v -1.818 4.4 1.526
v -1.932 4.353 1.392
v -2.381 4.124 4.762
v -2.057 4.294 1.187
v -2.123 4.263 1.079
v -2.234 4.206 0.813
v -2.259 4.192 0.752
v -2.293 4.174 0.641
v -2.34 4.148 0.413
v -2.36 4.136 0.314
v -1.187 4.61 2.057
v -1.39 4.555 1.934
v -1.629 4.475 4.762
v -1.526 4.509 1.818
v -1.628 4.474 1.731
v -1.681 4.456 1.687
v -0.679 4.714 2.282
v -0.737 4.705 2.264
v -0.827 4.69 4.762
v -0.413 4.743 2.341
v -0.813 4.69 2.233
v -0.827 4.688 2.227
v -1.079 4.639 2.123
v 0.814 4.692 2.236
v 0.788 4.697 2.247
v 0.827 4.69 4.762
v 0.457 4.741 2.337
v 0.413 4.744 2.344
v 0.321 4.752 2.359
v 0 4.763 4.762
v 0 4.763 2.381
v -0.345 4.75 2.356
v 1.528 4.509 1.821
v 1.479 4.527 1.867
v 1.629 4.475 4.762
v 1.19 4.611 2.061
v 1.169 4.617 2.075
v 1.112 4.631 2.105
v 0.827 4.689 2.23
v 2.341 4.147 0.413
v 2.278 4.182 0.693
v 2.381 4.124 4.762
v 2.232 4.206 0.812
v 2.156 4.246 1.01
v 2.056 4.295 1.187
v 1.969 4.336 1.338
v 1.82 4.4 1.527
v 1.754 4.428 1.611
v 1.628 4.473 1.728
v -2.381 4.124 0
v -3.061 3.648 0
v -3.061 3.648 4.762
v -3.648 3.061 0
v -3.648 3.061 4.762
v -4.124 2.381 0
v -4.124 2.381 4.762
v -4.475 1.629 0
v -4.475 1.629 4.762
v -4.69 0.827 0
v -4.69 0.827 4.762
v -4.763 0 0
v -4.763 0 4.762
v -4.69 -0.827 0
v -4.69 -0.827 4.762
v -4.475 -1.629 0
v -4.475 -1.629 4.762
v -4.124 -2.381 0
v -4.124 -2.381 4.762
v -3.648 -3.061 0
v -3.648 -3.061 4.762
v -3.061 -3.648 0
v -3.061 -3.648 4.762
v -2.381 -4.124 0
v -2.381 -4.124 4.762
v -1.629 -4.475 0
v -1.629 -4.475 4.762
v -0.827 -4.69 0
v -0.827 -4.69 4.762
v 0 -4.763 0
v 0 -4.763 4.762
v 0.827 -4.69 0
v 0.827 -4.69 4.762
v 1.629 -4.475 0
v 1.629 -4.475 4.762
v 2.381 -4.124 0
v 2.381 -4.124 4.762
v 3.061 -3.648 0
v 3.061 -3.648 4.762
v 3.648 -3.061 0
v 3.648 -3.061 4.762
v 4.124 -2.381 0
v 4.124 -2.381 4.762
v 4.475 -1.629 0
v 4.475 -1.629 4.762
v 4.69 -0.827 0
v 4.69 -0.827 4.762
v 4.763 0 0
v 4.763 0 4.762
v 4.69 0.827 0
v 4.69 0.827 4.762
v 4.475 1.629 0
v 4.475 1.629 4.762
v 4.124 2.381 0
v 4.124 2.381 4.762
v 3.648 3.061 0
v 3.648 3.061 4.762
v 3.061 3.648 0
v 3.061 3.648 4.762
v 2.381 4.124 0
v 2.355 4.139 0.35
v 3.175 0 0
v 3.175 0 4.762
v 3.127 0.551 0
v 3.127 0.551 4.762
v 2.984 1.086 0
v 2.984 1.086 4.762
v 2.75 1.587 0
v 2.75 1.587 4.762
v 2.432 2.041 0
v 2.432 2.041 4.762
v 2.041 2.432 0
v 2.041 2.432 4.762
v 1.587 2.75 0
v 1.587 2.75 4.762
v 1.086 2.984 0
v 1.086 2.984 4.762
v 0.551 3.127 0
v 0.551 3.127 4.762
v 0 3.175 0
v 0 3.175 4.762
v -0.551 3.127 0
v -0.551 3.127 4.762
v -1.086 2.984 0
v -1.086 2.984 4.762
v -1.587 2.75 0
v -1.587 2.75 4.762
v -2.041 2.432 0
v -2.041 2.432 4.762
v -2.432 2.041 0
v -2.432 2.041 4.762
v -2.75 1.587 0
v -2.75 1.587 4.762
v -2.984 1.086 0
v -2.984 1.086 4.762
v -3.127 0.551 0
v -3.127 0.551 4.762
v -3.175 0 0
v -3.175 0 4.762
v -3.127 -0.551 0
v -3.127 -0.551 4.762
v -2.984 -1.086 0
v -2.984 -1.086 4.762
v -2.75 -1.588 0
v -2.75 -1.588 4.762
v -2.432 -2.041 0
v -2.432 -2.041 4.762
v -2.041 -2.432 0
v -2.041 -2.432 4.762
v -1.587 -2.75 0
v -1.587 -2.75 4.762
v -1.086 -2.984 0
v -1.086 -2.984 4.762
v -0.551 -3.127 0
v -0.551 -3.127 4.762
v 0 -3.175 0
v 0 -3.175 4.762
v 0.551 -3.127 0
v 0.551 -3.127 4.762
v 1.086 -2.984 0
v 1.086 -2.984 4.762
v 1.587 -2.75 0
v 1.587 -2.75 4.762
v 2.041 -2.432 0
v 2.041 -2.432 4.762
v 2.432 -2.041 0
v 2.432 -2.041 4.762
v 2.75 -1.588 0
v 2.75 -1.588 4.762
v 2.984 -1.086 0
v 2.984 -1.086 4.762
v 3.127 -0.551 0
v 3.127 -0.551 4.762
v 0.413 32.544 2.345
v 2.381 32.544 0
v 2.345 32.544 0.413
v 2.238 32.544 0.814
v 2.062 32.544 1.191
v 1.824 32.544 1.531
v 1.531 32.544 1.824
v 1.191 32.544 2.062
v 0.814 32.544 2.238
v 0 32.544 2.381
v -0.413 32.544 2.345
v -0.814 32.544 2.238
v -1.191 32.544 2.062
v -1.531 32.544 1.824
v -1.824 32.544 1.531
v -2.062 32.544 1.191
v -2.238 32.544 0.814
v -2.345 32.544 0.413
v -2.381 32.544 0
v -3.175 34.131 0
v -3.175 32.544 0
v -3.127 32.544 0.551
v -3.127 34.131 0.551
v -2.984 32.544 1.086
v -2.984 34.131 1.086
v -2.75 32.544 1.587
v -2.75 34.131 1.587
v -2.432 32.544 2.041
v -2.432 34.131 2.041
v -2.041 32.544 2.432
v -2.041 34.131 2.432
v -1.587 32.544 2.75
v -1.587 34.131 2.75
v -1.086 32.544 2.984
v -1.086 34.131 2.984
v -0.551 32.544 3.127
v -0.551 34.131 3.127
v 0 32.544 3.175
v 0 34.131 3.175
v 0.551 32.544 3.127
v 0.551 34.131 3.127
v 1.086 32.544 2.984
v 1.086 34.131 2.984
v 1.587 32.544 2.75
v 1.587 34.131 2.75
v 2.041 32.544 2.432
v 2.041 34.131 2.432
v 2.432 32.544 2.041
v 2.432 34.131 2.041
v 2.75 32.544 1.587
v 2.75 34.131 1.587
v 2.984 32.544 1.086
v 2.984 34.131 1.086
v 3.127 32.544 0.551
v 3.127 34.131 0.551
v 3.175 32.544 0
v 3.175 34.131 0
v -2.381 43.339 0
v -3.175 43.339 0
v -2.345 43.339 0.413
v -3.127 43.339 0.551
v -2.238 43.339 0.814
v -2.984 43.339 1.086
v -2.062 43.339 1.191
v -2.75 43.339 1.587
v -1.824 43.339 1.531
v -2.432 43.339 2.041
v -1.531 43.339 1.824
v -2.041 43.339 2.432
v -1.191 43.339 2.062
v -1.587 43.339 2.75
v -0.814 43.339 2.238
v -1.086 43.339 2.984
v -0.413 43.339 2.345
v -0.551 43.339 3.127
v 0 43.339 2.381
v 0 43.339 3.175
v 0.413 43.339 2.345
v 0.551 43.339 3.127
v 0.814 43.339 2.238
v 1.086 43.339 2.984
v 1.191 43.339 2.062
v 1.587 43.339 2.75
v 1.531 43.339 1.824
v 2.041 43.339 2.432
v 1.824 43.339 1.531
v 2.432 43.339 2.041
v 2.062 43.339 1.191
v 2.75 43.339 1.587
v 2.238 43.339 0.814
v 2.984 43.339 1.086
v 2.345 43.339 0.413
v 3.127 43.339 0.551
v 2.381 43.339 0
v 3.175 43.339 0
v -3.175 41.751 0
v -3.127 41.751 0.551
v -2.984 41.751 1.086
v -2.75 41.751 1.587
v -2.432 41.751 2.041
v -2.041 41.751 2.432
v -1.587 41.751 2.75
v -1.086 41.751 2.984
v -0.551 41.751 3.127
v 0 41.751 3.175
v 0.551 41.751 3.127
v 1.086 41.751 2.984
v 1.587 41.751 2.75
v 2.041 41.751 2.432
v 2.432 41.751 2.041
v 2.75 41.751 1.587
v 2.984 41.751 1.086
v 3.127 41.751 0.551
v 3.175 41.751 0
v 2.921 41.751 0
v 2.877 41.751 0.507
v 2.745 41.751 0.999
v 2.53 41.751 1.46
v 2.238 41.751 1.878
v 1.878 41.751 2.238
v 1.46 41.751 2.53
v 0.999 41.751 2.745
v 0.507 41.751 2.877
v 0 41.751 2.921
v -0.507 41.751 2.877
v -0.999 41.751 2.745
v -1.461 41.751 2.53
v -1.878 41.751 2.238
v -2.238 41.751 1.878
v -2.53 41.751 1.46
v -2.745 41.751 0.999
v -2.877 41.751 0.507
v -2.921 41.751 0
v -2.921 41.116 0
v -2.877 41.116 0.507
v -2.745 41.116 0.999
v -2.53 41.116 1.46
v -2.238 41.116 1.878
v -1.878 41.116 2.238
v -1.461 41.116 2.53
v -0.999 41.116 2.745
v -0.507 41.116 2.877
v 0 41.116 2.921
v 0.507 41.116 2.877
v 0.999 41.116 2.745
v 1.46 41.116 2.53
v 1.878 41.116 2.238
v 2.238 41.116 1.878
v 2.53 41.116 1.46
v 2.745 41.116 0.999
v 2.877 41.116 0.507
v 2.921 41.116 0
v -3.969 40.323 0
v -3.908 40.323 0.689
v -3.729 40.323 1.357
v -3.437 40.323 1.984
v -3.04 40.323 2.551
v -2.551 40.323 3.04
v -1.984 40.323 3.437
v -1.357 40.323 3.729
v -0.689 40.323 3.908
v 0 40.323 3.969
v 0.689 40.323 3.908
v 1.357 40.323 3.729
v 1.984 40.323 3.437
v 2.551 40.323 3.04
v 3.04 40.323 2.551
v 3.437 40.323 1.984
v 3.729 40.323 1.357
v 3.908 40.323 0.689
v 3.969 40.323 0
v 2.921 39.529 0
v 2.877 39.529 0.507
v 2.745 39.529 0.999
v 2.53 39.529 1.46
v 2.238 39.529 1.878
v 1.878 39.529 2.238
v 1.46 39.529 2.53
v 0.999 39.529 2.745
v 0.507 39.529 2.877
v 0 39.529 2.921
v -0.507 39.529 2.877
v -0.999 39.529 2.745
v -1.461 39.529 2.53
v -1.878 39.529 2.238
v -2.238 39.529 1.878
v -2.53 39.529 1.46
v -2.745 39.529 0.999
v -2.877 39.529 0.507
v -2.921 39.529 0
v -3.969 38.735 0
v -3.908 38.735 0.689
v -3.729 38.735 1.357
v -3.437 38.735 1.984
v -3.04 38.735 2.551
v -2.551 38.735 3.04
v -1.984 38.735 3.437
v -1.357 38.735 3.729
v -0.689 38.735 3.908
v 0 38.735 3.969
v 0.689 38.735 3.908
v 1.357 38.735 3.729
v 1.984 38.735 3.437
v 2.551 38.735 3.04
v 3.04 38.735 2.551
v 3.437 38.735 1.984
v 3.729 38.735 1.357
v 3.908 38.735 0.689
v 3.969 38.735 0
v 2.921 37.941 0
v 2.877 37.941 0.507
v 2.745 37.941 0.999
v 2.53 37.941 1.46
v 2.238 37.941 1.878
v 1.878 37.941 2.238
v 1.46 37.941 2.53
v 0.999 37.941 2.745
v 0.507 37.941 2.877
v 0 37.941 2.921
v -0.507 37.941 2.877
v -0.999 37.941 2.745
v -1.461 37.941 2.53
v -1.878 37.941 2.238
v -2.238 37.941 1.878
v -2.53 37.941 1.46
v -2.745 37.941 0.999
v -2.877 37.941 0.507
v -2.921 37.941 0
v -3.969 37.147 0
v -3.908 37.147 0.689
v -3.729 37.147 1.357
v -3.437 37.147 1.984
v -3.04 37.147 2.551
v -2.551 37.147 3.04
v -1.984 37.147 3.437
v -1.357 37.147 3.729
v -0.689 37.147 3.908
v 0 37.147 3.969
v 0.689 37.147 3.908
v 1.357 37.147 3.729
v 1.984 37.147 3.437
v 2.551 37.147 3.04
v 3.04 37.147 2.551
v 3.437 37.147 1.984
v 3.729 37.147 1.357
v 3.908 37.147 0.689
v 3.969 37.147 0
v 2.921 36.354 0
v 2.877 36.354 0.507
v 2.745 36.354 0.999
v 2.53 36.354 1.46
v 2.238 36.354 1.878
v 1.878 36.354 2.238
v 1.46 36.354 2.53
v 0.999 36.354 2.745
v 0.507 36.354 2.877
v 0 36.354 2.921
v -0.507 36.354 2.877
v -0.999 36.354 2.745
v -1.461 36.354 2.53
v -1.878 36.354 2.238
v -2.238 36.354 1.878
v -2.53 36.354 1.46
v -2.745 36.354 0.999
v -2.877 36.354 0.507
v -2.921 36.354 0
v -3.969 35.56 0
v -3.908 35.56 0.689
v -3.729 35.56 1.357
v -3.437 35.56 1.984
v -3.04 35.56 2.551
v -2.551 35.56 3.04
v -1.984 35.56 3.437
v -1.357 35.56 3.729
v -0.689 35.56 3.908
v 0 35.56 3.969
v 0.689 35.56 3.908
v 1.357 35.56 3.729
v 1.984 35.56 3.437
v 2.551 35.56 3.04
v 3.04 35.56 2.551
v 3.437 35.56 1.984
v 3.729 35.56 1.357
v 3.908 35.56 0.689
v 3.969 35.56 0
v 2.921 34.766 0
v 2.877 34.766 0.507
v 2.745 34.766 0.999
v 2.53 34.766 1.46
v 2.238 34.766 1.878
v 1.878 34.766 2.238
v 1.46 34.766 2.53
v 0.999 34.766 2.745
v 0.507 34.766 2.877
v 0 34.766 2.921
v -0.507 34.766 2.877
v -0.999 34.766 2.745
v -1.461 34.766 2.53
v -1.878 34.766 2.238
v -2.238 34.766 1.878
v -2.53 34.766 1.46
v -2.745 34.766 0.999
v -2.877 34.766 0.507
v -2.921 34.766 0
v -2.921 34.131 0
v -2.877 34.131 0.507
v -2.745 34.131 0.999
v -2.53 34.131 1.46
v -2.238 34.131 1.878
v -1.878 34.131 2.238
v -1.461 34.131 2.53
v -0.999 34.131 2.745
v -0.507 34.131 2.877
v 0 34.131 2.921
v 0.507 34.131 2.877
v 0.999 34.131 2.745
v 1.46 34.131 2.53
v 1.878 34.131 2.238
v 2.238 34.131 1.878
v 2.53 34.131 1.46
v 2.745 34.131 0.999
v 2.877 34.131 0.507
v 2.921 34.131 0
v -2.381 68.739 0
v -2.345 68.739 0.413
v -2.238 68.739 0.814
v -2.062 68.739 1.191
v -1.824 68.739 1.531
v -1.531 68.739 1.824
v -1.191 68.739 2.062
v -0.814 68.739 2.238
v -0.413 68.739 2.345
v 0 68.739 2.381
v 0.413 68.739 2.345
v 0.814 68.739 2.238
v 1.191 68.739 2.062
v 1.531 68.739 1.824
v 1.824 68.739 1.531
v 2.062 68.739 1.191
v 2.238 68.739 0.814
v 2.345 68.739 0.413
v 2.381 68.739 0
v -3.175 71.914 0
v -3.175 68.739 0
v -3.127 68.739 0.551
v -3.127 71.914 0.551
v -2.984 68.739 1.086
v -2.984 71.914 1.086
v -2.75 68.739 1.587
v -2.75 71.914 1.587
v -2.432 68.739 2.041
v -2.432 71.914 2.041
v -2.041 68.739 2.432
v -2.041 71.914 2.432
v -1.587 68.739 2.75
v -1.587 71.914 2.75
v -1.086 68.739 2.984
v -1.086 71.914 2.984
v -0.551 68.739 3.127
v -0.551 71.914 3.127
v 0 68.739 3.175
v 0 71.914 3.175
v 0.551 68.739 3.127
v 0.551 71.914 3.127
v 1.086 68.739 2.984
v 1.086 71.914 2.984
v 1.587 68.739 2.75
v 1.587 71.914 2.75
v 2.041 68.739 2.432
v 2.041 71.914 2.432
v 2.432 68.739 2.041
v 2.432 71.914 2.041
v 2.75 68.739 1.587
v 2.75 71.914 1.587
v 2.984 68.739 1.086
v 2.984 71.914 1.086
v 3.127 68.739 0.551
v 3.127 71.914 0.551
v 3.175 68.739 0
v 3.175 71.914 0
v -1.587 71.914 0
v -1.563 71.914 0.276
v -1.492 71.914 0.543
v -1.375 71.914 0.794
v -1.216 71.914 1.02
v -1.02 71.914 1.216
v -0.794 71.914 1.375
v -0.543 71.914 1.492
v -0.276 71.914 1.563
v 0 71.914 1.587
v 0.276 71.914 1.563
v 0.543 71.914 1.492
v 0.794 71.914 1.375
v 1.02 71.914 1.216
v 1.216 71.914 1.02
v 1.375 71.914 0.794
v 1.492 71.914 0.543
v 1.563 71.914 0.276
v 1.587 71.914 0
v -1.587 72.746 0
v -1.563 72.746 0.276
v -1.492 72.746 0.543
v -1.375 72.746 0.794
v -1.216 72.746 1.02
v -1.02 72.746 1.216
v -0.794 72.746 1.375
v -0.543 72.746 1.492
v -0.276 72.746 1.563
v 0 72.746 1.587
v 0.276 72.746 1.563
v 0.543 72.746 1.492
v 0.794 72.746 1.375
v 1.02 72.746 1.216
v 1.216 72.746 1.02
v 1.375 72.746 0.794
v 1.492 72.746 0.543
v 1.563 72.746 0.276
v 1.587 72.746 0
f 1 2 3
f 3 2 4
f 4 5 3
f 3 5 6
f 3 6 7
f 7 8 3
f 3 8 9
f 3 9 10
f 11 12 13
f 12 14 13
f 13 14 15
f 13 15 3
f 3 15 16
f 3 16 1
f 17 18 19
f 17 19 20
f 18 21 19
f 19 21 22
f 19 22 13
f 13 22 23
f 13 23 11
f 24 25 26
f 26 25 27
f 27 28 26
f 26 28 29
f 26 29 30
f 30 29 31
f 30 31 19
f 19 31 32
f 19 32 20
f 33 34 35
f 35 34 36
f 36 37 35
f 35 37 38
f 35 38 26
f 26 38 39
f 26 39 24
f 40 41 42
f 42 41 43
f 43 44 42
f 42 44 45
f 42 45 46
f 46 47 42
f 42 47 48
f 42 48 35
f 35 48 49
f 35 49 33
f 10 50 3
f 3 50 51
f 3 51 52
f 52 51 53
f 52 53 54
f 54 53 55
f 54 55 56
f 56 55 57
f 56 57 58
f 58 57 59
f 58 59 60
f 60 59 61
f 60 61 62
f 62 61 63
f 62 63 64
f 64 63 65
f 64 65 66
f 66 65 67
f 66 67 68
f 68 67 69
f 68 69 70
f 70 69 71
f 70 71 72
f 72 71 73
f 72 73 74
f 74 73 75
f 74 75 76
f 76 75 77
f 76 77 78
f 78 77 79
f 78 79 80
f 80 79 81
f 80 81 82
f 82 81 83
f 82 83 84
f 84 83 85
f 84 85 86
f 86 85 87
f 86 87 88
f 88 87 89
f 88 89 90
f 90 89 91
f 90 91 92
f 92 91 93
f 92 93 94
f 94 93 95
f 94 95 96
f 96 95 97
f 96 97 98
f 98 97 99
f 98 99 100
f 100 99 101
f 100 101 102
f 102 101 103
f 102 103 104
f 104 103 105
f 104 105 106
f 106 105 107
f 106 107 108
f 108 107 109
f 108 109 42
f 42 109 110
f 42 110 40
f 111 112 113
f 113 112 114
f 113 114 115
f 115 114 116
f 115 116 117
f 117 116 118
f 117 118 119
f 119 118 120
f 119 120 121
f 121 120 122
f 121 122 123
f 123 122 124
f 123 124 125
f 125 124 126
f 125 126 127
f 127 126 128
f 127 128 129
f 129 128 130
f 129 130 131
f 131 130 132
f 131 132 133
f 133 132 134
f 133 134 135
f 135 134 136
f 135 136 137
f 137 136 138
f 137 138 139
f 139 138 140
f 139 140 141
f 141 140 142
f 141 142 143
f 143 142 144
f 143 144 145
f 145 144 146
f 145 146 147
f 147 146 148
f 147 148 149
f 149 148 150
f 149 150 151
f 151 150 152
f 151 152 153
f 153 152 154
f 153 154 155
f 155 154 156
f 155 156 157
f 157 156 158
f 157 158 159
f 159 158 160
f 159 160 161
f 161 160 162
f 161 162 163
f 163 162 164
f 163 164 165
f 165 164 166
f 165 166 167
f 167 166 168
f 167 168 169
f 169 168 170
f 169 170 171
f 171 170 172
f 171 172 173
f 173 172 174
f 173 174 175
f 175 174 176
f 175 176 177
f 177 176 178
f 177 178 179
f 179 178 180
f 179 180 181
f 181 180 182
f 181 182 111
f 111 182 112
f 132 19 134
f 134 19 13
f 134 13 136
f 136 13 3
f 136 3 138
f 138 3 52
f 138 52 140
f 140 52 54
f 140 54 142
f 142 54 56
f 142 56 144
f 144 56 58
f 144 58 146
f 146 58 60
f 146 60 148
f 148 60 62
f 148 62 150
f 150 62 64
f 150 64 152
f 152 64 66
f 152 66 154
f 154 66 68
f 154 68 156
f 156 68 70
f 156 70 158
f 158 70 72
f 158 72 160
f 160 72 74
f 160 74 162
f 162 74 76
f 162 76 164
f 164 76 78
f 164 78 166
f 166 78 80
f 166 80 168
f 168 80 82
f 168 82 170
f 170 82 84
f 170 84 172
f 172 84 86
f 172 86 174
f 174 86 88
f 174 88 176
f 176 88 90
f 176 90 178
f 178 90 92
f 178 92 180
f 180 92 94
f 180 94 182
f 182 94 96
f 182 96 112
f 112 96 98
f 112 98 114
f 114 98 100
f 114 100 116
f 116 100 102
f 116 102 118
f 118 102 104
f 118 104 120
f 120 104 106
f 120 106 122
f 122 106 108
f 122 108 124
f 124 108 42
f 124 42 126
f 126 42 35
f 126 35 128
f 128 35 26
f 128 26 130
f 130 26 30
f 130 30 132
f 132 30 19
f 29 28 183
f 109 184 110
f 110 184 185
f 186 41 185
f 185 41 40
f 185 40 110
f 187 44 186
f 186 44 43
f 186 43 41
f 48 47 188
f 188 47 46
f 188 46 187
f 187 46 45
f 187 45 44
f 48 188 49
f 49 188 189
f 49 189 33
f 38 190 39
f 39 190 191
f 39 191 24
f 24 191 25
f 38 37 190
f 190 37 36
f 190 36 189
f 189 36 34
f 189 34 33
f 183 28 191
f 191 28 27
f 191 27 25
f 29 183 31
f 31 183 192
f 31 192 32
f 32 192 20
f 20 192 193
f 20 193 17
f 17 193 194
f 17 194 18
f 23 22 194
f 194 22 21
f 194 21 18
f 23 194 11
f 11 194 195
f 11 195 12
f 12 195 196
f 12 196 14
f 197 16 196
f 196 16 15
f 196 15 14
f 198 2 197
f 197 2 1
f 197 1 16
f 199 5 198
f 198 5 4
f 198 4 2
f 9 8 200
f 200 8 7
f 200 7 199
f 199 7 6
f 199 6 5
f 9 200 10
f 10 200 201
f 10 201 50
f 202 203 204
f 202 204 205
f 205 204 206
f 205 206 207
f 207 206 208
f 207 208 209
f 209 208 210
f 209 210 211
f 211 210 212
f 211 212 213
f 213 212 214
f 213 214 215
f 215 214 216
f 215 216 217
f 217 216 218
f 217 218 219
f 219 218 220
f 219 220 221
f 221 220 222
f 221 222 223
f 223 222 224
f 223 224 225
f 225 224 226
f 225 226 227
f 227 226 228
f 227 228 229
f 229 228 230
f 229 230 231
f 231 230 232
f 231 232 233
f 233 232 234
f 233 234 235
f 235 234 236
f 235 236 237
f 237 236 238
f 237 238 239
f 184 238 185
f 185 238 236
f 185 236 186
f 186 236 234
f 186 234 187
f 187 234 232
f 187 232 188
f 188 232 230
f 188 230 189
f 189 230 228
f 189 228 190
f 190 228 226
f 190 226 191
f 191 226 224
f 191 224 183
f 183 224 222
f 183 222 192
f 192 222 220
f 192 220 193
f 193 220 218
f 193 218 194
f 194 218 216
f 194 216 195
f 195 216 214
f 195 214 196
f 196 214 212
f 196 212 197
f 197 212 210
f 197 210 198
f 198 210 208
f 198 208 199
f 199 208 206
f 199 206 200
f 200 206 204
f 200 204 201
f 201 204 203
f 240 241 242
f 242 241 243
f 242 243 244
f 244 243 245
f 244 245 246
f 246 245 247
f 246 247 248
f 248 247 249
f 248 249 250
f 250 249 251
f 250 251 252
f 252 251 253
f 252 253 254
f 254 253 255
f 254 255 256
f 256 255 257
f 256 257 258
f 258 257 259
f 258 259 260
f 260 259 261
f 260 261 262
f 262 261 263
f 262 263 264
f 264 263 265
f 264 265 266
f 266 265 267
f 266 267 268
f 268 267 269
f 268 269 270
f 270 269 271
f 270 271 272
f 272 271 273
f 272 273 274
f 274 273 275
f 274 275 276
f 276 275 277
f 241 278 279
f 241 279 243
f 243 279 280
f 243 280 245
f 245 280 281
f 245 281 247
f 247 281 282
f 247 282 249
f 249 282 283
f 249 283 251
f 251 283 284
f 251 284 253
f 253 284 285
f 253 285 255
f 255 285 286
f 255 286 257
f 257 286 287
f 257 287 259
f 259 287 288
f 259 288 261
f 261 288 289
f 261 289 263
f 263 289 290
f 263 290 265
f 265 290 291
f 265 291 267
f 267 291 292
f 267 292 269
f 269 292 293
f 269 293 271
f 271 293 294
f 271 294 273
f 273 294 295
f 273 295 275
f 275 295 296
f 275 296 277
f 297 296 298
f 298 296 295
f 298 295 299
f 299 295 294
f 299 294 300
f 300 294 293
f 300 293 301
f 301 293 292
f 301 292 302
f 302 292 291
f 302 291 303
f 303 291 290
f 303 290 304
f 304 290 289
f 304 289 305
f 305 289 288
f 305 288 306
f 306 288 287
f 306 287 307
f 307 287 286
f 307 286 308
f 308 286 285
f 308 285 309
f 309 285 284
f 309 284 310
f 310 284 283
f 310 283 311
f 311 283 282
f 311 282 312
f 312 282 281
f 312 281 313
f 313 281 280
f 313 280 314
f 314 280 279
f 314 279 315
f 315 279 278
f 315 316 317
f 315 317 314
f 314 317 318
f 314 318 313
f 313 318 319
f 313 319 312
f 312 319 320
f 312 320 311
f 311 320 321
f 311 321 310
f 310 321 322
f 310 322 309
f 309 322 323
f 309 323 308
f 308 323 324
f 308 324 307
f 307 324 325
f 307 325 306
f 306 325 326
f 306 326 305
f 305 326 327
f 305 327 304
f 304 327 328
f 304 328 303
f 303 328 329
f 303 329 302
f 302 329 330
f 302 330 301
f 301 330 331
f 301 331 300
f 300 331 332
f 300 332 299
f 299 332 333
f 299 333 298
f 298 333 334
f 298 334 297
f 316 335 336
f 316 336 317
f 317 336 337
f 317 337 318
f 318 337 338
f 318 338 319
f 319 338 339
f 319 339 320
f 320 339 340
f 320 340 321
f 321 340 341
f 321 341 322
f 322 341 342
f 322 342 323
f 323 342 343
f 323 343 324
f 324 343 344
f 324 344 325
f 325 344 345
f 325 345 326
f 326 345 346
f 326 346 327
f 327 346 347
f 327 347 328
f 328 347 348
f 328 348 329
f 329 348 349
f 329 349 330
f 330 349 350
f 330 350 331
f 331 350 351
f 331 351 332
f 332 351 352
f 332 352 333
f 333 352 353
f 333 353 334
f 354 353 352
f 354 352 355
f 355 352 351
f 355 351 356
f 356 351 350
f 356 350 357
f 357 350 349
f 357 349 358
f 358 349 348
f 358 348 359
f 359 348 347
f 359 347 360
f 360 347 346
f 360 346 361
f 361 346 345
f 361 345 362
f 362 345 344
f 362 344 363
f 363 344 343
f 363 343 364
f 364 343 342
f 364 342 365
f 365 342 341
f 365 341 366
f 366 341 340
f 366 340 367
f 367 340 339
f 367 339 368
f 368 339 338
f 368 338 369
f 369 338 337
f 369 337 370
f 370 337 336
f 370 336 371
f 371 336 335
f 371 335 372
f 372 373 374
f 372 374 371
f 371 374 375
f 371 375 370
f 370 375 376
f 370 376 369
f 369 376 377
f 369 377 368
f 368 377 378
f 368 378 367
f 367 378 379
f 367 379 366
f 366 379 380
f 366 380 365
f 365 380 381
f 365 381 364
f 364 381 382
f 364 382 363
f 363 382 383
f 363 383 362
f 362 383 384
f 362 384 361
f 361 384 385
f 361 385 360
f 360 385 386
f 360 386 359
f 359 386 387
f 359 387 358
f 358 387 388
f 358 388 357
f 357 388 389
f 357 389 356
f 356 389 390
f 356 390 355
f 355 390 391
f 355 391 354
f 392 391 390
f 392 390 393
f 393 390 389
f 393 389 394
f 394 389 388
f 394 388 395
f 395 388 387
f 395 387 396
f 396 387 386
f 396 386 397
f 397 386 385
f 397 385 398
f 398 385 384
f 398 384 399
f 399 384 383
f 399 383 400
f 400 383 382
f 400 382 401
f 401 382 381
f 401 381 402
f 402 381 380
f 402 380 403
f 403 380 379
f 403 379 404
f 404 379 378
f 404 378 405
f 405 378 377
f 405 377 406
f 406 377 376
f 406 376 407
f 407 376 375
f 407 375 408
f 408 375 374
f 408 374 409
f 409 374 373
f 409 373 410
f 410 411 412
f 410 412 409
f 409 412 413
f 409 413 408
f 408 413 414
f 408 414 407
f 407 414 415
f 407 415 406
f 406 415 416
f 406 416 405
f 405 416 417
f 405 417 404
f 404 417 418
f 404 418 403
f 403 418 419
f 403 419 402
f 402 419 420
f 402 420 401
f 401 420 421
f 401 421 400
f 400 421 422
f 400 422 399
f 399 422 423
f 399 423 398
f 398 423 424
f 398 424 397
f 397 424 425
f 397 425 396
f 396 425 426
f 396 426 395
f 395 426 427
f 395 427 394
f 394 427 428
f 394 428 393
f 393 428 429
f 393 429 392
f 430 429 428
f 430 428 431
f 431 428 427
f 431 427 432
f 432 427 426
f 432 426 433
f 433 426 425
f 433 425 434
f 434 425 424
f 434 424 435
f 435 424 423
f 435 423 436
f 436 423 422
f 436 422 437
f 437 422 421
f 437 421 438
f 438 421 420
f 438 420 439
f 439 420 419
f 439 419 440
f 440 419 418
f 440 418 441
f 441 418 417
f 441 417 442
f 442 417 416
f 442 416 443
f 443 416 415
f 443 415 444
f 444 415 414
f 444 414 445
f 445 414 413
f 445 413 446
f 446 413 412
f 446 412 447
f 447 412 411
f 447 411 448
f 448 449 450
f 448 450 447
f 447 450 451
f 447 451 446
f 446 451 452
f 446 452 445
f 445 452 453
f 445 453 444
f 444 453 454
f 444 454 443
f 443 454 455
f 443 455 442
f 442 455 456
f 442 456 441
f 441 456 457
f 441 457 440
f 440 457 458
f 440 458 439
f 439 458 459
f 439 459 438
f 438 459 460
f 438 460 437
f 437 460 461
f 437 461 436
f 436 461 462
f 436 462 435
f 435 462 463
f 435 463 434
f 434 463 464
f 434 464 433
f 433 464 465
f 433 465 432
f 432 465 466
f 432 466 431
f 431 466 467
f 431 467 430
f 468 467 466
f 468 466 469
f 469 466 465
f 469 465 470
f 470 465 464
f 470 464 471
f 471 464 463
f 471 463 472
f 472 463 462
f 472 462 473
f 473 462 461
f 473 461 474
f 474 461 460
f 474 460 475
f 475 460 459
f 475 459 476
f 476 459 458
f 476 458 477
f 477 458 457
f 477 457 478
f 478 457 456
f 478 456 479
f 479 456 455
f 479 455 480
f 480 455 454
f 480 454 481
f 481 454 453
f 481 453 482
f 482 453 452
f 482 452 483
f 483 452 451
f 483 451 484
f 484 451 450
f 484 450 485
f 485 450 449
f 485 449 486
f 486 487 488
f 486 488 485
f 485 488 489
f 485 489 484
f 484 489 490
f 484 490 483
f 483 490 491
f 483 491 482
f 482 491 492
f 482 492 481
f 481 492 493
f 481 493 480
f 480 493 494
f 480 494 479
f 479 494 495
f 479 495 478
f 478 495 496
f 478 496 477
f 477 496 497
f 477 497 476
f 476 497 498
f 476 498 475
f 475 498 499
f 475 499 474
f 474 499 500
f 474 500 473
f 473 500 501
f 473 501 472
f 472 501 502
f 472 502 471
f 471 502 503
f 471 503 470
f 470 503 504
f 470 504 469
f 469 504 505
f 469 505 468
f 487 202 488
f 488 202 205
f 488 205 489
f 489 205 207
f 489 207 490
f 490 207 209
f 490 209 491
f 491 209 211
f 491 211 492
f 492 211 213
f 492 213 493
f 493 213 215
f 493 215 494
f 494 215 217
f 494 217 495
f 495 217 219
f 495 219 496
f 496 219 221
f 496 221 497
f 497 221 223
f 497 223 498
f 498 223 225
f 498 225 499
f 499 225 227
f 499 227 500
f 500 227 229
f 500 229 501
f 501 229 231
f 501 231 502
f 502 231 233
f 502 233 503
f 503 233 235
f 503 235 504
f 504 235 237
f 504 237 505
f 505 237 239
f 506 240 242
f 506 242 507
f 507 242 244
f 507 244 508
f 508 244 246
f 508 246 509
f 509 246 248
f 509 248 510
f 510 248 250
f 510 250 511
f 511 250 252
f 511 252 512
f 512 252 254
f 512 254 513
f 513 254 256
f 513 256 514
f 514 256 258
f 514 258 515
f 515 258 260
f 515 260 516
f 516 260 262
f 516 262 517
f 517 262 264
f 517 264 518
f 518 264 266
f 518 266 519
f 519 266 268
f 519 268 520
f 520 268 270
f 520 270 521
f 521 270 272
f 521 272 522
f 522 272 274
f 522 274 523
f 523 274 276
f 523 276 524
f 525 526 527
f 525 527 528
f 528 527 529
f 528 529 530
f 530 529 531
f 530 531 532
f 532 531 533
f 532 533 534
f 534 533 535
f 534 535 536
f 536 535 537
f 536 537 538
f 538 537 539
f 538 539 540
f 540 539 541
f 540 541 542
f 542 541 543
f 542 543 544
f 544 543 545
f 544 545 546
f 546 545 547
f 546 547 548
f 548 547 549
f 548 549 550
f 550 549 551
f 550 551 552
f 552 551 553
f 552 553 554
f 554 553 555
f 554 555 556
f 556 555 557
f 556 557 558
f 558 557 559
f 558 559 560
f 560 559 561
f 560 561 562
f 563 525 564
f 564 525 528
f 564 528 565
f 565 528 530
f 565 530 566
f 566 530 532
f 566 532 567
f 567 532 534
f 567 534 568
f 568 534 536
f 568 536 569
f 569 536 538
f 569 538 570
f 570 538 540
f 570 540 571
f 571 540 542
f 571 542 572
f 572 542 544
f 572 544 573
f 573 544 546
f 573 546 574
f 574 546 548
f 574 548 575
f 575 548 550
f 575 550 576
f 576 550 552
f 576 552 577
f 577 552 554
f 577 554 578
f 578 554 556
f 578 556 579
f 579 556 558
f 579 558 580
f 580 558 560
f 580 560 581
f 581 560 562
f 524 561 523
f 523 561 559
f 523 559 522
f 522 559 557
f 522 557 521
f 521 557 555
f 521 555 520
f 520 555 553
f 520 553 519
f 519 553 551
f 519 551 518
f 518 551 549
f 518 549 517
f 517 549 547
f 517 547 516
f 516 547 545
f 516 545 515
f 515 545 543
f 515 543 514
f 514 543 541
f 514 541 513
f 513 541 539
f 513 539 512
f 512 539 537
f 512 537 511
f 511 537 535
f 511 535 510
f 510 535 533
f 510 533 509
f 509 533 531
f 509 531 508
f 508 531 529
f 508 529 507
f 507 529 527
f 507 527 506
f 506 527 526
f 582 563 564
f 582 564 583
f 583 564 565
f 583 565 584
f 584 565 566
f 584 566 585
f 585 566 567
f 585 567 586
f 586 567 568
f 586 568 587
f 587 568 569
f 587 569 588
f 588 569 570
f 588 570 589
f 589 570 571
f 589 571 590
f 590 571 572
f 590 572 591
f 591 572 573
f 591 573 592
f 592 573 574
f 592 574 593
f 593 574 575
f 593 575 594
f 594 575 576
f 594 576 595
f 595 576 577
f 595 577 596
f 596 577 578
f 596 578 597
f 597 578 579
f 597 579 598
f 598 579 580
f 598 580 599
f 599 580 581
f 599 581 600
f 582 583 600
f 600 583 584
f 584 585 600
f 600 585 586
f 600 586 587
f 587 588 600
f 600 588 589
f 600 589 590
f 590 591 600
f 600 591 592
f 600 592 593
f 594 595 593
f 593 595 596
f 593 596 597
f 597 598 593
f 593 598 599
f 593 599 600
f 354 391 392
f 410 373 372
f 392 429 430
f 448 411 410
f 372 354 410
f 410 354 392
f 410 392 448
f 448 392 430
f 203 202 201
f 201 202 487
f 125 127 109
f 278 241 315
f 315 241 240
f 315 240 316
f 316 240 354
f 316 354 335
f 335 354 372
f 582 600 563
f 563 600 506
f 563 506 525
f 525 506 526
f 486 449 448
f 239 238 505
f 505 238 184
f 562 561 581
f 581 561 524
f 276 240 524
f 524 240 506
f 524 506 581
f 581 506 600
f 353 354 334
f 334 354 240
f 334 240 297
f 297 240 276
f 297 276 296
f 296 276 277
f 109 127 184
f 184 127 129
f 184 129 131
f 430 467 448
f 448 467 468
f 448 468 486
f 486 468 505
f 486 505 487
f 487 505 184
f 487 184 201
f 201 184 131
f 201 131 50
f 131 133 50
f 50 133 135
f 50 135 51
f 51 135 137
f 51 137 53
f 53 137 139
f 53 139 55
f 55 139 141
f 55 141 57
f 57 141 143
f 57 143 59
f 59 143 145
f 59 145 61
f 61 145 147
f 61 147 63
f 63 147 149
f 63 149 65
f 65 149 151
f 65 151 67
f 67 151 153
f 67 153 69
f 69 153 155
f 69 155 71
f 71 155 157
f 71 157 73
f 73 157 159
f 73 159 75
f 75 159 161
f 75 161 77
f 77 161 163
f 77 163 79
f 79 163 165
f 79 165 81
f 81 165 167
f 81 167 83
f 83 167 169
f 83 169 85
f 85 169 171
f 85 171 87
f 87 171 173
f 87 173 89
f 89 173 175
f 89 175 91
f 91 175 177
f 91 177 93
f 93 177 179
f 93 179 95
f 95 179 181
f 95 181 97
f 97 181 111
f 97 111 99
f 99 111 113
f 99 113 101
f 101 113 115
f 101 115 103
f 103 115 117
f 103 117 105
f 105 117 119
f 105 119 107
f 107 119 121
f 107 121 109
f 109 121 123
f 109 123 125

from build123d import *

# Parameters (mm, degrees)
BOSS_EXTRUDE1_DEPTH                  = 4.7625
BOSS_EXTRUDE1_DEPTH_BACK             = 2.38125
SKETCH1_R                            = 4.7625
SKETCH1_R_2                          = 3.175
SKETCH2_R                            = 2.38125
BOSS_EXTRUDE2_DEPTH                  = 28.575
BOSS_EXTRUDE2_DIRECTION_2_REACH      = 13.666
BOSS_EXTRUDE2_DIRECTION_2_END_RADIUS = 4.7625
SKETCH3_W                            = 3.175
SKETCH3_H                            = 1.5875
BOSS_EXTRUDE3_START                  = 25.4
SKETCH4_R                            = 2.38125
BOSS_EXTRUDE3_DEPTH                  = 25.4
SKETCH5_R                            = 3.175
BOSS_EXTRUDE4_DEPTH                  = 3.175
SKETCH6_R                            = 1.5875
BOSS_EXTRUDE5_DEPTH                  = 0.83185
SKETCH7_W                            = 15.534712676
SKETCH7_H                            = 81.822586025
CUT_EXTRUDE1_DEPTH                   = 74.056725452


with BuildPart() as part:
    # Sketch1 → Boss-Extrude1 (new, two sides: drawn at the far end of the back side and taken through both)
    with BuildSketch(Plane.XY.offset(-BOSS_EXTRUDE1_DEPTH_BACK)):
        Circle(SKETCH1_R)
        Circle(SKETCH1_R_2, mode=Mode.SUBTRACT)
    extrude(amount=BOSS_EXTRUDE1_DEPTH + BOSS_EXTRUDE1_DEPTH_BACK)

    # Sketch2 → Boss-Extrude2 (add)
    with BuildSketch(Plane(origin=(0, 4.7625, 0), x_dir=(1, 0, 0), z_dir=(0, 1, 0))):
        with Locations(Location((0, 0, 0), (0, 0, 90.000000028))):
            Circle(SKETCH2_R)
    extrude(amount=BOSS_EXTRUDE2_DEPTH)

    # Boss-Extrude2 direction 2: up to this cylinder (the profile starts outside it)
    boss_extrude2_direction_2_end = Plane(origin=(0, 0, 0), z_dir=(0, 0, 1)) * Cylinder(BOSS_EXTRUDE2_DIRECTION_2_END_RADIUS, 37.857, mode=Mode.PRIVATE)
    # Sketch2 → Boss-Extrude2 direction 2 (add, up to the surface)
    with BuildSketch(Plane(origin=(0, 4.7625, 0), x_dir=(1, 0, 0), z_dir=(0, 1, 0)), mode=Mode.PRIVATE) as boss_extrude2_direction_2_sk1:
        with Locations(Location((0, 0, 0), (0, 0, 90.000000028))):
            Circle(SKETCH2_R)
    boss_extrude2_direction_2_tool1 = extrude(boss_extrude2_direction_2_sk1.sketch, amount=-BOSS_EXTRUDE2_DIRECTION_2_REACH, mode=Mode.PRIVATE) - boss_extrude2_direction_2_end
    add(boss_extrude2_direction_2_tool1.solids().sort_by_distance((0, 4.7625, 0))[0])
    add(boss_extrude2_direction_2_tool1.solids().sort_by_distance((0, 4.7625, 0))[1])

    # Sketch3 → Revolve1 (revolve)
    with BuildSketch(Plane(origin=(0, 0, 0), x_dir=(0, 0, -1), z_dir=(1, 0, 0)), mode=Mode.PRIVATE) as revolve1_sk:
        with Locations((-1.5875, 33.3375)):
            Rectangle(SKETCH3_W, SKETCH3_H)
        Polygon((-2.921, 34.76625), (-2.921, 34.13125), (0, 34.13125), (0, 43.33875), (-3.175, 43.33875), (-3.175, 41.75125), (-2.921, 41.75125), (-2.921, 41.11625), (-3.96875, 40.3225), (-2.921, 39.52875), (-3.96875, 38.735), (-2.921, 37.94125), (-3.96875, 37.1475), (-2.921, 36.35375), (-3.96875, 35.56), align=None)
    revolve(revolve1_sk.sketch.rotate(Axis((0, 32.54375, 0), (0, 1, 0)), 180), axis=Axis((0, 32.54375, 0), (0, 1, 0)))

    # Sketch4 → Boss-Extrude3 (add)
    with BuildSketch(Plane(origin=(0, 43.33875, 0), x_dir=(1, 0, 0), z_dir=(0, 1, 0)).offset(BOSS_EXTRUDE3_START)):
        with Locations(Location((0, 0, 0), (0, 0, 90))):
            Circle(SKETCH4_R)
    extrude(amount=-BOSS_EXTRUDE3_DEPTH)

    # Sketch5 → Boss-Extrude4 (add)
    with BuildSketch(Plane(origin=(0, 68.73875, 0), x_dir=(1, 0, 0), z_dir=(0, 1, 0))):
        with Locations(Location((0, 0, 0), (0, 0, 90))):
            Circle(SKETCH5_R)
    extrude(amount=BOSS_EXTRUDE4_DEPTH)

    # Sketch6 → Boss-Extrude5 (add)
    with BuildSketch(Plane(origin=(0, 71.91375, 0), x_dir=(1, 0, 0), z_dir=(0, 1, 0))):
        with Locations(Location((0, 0, 0), (0, 0, 270))):
            Circle(SKETCH6_R)
    extrude(amount=BOSS_EXTRUDE5_DEPTH)

    # Sketch7 → Cut-Extrude1 (cut, through all)
    with BuildSketch(Plane.XY):
        with Locations((0.627177841, 34.425750044)):
            Rectangle(SKETCH7_W, SKETCH7_H)
    extrude(amount=-CUT_EXTRUDE1_DEPTH, mode=Mode.SUBTRACT)


solid = part.part
